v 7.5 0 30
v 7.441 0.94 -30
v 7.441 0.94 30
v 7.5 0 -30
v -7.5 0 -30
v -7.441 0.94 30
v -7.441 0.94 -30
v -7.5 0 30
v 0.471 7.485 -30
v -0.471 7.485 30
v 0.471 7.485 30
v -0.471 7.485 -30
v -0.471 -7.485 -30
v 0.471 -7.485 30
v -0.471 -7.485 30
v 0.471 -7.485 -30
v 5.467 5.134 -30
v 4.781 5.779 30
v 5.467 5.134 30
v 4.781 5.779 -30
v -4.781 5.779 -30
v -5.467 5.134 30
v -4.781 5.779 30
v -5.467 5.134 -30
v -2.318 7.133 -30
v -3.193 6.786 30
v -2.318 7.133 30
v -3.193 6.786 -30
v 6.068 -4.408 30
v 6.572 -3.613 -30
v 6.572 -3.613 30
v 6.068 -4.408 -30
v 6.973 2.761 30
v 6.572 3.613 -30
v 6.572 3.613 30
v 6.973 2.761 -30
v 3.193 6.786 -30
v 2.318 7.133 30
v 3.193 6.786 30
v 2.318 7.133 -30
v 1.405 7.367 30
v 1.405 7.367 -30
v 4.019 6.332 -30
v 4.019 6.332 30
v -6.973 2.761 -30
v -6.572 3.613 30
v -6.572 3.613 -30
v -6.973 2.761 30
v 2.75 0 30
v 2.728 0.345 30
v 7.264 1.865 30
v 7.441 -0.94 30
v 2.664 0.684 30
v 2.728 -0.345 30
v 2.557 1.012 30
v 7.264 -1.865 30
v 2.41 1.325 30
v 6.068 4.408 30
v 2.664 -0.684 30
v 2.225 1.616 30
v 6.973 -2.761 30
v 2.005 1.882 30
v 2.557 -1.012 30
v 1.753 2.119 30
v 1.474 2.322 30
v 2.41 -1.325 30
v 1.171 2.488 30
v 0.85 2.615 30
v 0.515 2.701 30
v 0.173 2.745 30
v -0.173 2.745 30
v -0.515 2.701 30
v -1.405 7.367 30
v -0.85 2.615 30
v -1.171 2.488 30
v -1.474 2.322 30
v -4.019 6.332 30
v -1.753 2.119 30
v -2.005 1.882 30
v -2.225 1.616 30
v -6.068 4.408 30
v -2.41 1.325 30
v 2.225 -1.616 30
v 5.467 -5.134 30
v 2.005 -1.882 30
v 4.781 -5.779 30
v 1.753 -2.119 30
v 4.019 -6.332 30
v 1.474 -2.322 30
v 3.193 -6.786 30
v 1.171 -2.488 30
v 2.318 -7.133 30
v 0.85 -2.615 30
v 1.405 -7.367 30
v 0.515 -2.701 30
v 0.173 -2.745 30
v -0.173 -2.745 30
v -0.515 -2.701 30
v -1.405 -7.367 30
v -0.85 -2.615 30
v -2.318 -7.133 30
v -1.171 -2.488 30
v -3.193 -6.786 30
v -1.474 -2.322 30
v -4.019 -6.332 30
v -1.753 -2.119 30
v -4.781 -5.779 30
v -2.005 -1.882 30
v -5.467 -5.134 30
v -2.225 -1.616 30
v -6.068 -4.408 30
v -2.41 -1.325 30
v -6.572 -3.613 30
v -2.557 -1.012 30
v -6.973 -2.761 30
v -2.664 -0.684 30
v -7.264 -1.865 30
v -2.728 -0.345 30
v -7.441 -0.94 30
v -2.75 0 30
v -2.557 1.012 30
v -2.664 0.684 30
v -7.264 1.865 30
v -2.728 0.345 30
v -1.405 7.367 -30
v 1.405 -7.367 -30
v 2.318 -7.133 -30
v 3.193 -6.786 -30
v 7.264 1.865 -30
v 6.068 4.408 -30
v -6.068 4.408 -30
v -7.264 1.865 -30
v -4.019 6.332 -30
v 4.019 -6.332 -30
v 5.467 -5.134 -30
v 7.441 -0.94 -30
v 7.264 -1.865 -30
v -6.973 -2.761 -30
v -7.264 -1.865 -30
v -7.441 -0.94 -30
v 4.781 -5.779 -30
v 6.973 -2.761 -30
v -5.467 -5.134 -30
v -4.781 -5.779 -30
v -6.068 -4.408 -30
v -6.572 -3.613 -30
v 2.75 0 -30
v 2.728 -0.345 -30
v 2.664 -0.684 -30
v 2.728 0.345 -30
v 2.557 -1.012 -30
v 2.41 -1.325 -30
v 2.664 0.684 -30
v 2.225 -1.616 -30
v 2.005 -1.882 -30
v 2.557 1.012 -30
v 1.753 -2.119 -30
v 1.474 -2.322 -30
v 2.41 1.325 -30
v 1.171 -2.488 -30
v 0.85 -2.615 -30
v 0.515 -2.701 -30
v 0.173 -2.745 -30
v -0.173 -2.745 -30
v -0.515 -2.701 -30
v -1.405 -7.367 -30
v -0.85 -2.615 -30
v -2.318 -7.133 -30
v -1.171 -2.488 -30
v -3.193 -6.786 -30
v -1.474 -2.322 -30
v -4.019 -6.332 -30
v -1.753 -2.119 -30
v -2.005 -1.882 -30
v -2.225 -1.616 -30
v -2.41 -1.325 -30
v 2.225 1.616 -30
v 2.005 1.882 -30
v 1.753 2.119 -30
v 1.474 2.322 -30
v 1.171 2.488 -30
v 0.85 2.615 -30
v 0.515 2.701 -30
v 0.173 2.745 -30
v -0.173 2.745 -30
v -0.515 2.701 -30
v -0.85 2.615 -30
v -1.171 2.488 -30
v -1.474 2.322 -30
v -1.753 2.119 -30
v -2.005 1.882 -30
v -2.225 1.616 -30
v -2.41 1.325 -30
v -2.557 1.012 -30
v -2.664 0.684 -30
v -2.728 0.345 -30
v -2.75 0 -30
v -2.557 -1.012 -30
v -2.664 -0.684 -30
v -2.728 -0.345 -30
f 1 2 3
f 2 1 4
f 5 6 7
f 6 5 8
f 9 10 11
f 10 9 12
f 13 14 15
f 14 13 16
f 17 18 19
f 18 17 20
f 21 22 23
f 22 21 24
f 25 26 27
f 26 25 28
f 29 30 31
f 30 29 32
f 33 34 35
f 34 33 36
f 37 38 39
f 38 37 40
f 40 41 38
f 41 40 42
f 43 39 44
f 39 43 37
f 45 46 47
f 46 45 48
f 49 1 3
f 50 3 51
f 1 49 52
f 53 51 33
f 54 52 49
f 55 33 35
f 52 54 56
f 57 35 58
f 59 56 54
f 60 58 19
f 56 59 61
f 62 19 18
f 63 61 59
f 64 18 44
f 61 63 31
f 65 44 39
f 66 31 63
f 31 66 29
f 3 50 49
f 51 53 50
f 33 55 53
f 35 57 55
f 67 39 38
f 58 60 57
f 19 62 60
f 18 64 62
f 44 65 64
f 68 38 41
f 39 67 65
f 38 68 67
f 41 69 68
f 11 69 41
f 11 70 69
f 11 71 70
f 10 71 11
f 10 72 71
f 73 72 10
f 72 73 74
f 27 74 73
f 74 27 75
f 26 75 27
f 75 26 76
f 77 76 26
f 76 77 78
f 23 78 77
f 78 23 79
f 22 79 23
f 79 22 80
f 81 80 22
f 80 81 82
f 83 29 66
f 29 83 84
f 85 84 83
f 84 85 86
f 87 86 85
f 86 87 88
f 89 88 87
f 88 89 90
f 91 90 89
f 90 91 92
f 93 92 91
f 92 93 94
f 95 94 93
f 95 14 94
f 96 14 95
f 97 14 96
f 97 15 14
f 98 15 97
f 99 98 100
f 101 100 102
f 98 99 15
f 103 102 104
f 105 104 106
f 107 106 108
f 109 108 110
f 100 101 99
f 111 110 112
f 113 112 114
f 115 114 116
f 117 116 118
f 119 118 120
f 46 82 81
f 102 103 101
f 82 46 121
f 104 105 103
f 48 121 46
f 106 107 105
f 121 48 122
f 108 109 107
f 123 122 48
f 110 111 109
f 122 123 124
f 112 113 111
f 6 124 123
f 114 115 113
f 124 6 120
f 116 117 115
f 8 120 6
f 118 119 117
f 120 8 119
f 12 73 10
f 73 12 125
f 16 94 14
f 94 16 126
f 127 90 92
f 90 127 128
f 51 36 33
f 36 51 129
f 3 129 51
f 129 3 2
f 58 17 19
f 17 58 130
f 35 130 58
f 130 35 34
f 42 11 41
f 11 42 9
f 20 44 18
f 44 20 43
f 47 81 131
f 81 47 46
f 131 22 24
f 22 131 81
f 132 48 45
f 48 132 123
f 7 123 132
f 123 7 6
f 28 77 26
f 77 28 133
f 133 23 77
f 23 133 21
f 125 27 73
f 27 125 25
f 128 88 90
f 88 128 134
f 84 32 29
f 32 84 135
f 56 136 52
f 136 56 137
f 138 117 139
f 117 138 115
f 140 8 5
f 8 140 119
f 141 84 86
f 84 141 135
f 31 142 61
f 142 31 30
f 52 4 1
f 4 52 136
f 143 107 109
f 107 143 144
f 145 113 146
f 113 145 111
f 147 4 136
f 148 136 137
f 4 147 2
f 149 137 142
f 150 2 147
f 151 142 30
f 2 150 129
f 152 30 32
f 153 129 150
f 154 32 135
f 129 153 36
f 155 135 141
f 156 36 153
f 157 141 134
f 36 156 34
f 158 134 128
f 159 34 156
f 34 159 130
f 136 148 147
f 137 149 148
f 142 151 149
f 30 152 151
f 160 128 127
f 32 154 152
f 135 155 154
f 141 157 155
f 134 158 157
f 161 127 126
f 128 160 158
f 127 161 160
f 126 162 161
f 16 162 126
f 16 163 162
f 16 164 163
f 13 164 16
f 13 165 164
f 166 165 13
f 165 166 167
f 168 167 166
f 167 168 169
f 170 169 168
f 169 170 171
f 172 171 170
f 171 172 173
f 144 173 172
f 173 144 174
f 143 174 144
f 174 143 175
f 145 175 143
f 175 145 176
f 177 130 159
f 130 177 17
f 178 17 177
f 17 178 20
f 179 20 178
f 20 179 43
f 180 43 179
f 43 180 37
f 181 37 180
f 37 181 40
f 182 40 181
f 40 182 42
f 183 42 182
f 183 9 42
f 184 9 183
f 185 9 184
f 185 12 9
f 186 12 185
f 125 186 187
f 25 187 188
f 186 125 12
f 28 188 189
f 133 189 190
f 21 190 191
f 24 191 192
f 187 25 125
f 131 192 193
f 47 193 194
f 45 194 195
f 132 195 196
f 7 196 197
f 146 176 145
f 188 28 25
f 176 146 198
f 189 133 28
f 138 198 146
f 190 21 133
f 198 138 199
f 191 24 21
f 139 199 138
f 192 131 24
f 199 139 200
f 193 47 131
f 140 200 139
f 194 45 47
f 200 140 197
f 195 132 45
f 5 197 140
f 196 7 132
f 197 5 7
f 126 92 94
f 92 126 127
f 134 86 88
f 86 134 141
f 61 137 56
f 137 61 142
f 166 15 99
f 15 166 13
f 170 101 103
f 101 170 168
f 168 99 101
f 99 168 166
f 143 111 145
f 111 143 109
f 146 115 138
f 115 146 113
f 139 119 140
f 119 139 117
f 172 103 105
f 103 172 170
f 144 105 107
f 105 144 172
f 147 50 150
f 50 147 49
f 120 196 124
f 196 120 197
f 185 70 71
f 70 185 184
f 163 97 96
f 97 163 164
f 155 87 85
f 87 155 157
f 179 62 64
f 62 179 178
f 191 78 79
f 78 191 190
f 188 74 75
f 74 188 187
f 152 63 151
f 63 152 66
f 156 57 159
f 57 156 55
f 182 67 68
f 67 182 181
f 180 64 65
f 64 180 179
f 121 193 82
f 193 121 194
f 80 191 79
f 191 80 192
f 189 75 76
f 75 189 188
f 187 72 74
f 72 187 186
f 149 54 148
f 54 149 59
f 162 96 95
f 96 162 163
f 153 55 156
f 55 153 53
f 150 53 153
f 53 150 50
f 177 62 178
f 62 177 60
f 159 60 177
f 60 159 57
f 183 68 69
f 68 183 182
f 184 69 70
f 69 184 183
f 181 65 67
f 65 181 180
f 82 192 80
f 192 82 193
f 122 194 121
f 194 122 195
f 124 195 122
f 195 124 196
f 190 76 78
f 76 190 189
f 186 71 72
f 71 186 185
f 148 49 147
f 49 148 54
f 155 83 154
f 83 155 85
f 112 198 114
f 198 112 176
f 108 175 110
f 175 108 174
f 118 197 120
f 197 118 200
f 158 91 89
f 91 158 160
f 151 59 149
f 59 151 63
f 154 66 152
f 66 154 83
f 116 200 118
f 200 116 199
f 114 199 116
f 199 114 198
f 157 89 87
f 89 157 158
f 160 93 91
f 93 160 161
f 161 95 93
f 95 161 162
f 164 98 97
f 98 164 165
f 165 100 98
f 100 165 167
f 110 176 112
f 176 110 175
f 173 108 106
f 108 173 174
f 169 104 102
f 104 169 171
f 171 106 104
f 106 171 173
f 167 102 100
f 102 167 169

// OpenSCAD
$fn = 50;


difference() {
	union() {
		translate(v = [0, 0, -30.0000000000]) {
			cylinder(h = 60, r = 7.5000000000);
		}
	}
	union() {
		translate(v = [0, 0, -100.0000000000]) {
			cylinder(h = 200, r = 2.7500000000);
		}
	}
}
